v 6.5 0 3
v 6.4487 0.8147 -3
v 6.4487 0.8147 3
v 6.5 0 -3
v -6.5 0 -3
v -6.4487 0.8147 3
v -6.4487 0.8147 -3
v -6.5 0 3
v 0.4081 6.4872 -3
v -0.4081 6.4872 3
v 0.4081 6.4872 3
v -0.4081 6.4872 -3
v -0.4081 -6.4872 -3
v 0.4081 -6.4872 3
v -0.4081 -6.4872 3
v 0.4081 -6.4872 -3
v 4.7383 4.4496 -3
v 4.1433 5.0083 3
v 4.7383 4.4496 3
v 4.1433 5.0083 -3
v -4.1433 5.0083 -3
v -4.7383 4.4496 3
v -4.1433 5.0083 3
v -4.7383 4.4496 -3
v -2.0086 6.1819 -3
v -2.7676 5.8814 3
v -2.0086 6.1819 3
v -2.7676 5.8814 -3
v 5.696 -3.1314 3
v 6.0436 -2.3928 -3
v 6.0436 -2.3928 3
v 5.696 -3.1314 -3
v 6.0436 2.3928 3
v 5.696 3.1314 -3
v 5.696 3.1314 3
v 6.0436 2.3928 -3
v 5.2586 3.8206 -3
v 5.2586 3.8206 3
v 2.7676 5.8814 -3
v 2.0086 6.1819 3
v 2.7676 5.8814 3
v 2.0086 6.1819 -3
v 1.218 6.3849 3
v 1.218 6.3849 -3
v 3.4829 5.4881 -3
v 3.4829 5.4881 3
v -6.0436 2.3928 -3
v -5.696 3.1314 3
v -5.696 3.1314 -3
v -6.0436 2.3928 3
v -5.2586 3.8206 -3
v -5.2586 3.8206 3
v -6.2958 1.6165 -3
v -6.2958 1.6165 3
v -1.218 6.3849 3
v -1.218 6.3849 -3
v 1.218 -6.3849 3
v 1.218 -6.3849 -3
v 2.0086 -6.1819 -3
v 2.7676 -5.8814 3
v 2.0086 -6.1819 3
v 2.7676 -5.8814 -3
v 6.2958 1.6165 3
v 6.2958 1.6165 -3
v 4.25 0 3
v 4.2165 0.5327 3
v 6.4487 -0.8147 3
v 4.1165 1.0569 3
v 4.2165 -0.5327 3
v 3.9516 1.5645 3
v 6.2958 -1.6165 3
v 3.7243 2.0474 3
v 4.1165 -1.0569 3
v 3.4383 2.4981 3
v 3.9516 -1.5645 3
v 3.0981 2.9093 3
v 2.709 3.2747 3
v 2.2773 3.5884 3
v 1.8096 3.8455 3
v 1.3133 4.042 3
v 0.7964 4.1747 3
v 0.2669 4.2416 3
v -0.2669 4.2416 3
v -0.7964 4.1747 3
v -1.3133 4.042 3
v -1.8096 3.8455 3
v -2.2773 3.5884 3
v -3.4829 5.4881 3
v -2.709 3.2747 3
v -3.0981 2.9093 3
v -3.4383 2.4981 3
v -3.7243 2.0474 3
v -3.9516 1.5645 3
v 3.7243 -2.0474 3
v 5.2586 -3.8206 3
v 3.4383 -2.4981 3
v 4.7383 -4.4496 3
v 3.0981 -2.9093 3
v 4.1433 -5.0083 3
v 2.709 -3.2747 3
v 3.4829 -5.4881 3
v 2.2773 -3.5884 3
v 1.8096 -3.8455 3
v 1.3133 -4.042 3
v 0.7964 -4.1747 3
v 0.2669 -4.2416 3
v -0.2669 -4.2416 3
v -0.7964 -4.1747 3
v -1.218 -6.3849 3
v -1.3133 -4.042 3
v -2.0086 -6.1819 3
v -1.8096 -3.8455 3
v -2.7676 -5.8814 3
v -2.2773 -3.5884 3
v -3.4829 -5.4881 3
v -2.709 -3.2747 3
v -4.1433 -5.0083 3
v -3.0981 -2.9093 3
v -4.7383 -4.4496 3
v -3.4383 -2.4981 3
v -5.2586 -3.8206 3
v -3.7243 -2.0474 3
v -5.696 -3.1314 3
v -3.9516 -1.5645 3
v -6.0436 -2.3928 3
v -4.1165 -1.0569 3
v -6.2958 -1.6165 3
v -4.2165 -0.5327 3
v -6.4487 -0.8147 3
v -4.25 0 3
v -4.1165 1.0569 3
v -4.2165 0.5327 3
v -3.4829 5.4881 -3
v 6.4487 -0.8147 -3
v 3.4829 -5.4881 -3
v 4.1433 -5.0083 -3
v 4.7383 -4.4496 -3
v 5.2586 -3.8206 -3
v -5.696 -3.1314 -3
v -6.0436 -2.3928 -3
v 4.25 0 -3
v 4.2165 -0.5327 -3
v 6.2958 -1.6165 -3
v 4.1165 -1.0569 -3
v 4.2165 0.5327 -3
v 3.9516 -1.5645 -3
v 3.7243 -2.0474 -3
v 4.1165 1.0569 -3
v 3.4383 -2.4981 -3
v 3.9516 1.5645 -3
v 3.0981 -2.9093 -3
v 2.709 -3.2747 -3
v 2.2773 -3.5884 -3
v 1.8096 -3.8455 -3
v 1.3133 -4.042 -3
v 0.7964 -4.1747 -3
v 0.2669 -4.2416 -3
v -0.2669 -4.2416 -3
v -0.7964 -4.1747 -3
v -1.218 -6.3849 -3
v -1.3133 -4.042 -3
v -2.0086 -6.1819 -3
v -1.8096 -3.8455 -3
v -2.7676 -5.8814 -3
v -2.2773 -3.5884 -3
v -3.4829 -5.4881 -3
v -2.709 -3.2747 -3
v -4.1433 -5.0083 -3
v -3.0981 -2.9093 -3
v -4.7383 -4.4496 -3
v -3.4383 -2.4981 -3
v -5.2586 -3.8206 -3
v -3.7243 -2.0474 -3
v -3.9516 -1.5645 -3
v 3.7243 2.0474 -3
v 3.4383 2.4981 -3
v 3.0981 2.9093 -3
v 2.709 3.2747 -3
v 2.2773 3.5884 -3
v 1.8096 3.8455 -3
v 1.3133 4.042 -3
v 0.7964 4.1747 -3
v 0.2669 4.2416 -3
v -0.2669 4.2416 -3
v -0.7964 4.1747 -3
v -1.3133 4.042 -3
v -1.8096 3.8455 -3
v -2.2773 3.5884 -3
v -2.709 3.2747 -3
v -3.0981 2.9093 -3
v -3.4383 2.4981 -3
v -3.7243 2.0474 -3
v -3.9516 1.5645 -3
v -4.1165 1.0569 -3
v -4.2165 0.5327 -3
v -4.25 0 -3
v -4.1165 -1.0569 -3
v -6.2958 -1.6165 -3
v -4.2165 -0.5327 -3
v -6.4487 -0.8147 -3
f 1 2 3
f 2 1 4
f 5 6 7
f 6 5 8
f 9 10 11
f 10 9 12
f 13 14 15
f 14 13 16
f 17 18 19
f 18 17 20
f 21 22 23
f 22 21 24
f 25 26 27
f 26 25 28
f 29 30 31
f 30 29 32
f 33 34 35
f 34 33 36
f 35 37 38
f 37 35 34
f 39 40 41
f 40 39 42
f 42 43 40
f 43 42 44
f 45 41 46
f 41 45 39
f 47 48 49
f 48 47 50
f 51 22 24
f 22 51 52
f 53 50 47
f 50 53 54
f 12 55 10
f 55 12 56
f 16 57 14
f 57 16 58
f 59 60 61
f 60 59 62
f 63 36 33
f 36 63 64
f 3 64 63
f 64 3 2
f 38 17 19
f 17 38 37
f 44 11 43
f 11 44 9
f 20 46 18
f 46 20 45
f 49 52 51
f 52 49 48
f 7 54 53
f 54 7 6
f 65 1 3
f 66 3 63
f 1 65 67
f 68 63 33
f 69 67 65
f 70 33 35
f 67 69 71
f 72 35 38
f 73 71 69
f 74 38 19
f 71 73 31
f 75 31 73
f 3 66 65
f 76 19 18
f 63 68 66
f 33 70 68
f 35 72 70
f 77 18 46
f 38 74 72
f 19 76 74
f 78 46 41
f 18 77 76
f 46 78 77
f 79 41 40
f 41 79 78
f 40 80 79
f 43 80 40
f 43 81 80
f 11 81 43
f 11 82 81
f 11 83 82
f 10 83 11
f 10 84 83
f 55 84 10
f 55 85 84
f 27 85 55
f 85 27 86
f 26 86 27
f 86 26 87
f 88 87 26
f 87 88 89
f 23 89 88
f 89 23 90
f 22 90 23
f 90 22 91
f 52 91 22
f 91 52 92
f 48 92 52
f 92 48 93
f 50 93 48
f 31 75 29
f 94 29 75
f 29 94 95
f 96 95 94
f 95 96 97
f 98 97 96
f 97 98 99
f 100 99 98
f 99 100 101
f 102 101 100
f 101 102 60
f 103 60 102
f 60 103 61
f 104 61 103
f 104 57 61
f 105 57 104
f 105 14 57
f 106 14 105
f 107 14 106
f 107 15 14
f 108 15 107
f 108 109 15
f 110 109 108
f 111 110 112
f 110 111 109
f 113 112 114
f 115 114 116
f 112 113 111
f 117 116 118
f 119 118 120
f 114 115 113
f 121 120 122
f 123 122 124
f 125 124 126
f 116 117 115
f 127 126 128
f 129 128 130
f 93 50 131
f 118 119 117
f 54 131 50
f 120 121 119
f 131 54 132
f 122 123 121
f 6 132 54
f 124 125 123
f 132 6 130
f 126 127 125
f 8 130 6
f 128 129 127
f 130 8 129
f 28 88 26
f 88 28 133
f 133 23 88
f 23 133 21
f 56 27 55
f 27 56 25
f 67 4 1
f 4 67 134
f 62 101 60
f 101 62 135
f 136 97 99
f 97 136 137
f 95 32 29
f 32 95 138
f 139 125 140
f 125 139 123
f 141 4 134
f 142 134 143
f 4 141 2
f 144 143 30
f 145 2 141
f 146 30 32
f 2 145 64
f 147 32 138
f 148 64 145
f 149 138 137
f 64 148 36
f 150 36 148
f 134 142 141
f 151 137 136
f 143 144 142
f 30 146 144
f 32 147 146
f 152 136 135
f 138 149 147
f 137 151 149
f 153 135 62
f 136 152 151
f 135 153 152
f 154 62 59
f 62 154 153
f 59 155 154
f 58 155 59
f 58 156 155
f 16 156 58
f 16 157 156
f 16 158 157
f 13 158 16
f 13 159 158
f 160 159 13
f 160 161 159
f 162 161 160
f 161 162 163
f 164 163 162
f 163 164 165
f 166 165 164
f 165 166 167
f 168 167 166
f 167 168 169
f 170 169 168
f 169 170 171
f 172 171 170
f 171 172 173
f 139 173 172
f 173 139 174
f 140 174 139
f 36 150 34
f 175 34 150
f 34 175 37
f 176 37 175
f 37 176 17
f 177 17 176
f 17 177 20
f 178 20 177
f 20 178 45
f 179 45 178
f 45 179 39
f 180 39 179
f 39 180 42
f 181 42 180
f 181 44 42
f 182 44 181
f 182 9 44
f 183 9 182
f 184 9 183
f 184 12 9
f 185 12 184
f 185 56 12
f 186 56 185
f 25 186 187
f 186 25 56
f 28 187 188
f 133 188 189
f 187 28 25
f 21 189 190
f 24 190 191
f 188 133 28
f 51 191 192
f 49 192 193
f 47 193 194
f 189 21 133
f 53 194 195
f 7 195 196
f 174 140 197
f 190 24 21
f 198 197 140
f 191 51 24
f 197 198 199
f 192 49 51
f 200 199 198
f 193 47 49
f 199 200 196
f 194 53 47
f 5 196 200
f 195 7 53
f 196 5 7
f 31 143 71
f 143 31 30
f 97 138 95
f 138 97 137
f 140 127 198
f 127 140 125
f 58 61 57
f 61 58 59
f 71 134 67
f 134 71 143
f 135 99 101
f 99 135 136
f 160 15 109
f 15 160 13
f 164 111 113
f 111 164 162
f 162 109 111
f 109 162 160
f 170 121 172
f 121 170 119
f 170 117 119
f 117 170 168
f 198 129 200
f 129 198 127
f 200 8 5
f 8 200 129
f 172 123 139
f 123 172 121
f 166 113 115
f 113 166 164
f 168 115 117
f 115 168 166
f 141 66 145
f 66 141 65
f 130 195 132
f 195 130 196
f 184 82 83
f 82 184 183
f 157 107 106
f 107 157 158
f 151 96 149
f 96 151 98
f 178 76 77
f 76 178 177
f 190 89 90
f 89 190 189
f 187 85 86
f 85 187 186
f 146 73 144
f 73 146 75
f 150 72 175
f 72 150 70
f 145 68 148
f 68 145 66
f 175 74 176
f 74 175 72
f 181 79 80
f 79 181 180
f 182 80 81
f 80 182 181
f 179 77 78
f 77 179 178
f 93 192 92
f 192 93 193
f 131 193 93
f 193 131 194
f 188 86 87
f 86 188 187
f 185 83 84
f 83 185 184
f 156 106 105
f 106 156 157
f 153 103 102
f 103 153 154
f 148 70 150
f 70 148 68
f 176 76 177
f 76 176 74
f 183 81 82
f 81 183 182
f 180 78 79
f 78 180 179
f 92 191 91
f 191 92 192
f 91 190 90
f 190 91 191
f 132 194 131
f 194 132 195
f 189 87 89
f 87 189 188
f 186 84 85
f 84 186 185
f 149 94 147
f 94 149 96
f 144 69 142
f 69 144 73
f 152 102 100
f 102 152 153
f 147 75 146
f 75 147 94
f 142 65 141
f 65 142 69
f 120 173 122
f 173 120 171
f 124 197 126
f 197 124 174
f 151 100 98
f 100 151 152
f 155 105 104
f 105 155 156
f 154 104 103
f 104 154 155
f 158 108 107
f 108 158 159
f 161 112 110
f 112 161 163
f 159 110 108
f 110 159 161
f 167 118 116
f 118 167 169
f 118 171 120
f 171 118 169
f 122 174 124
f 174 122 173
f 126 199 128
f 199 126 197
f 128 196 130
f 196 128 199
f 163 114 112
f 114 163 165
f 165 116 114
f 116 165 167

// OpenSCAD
$fn = 50;


difference() {
	union() {
		translate(v = [0, 0, -3.0000000000]) {
			cylinder(h = 6, r = 6.5000000000);
		}
	}
	union() {
		translate(v = [0, 0, -100.0000000000]) {
			cylinder(h = 200, r = 4.2500000000);
		}
	}
}
